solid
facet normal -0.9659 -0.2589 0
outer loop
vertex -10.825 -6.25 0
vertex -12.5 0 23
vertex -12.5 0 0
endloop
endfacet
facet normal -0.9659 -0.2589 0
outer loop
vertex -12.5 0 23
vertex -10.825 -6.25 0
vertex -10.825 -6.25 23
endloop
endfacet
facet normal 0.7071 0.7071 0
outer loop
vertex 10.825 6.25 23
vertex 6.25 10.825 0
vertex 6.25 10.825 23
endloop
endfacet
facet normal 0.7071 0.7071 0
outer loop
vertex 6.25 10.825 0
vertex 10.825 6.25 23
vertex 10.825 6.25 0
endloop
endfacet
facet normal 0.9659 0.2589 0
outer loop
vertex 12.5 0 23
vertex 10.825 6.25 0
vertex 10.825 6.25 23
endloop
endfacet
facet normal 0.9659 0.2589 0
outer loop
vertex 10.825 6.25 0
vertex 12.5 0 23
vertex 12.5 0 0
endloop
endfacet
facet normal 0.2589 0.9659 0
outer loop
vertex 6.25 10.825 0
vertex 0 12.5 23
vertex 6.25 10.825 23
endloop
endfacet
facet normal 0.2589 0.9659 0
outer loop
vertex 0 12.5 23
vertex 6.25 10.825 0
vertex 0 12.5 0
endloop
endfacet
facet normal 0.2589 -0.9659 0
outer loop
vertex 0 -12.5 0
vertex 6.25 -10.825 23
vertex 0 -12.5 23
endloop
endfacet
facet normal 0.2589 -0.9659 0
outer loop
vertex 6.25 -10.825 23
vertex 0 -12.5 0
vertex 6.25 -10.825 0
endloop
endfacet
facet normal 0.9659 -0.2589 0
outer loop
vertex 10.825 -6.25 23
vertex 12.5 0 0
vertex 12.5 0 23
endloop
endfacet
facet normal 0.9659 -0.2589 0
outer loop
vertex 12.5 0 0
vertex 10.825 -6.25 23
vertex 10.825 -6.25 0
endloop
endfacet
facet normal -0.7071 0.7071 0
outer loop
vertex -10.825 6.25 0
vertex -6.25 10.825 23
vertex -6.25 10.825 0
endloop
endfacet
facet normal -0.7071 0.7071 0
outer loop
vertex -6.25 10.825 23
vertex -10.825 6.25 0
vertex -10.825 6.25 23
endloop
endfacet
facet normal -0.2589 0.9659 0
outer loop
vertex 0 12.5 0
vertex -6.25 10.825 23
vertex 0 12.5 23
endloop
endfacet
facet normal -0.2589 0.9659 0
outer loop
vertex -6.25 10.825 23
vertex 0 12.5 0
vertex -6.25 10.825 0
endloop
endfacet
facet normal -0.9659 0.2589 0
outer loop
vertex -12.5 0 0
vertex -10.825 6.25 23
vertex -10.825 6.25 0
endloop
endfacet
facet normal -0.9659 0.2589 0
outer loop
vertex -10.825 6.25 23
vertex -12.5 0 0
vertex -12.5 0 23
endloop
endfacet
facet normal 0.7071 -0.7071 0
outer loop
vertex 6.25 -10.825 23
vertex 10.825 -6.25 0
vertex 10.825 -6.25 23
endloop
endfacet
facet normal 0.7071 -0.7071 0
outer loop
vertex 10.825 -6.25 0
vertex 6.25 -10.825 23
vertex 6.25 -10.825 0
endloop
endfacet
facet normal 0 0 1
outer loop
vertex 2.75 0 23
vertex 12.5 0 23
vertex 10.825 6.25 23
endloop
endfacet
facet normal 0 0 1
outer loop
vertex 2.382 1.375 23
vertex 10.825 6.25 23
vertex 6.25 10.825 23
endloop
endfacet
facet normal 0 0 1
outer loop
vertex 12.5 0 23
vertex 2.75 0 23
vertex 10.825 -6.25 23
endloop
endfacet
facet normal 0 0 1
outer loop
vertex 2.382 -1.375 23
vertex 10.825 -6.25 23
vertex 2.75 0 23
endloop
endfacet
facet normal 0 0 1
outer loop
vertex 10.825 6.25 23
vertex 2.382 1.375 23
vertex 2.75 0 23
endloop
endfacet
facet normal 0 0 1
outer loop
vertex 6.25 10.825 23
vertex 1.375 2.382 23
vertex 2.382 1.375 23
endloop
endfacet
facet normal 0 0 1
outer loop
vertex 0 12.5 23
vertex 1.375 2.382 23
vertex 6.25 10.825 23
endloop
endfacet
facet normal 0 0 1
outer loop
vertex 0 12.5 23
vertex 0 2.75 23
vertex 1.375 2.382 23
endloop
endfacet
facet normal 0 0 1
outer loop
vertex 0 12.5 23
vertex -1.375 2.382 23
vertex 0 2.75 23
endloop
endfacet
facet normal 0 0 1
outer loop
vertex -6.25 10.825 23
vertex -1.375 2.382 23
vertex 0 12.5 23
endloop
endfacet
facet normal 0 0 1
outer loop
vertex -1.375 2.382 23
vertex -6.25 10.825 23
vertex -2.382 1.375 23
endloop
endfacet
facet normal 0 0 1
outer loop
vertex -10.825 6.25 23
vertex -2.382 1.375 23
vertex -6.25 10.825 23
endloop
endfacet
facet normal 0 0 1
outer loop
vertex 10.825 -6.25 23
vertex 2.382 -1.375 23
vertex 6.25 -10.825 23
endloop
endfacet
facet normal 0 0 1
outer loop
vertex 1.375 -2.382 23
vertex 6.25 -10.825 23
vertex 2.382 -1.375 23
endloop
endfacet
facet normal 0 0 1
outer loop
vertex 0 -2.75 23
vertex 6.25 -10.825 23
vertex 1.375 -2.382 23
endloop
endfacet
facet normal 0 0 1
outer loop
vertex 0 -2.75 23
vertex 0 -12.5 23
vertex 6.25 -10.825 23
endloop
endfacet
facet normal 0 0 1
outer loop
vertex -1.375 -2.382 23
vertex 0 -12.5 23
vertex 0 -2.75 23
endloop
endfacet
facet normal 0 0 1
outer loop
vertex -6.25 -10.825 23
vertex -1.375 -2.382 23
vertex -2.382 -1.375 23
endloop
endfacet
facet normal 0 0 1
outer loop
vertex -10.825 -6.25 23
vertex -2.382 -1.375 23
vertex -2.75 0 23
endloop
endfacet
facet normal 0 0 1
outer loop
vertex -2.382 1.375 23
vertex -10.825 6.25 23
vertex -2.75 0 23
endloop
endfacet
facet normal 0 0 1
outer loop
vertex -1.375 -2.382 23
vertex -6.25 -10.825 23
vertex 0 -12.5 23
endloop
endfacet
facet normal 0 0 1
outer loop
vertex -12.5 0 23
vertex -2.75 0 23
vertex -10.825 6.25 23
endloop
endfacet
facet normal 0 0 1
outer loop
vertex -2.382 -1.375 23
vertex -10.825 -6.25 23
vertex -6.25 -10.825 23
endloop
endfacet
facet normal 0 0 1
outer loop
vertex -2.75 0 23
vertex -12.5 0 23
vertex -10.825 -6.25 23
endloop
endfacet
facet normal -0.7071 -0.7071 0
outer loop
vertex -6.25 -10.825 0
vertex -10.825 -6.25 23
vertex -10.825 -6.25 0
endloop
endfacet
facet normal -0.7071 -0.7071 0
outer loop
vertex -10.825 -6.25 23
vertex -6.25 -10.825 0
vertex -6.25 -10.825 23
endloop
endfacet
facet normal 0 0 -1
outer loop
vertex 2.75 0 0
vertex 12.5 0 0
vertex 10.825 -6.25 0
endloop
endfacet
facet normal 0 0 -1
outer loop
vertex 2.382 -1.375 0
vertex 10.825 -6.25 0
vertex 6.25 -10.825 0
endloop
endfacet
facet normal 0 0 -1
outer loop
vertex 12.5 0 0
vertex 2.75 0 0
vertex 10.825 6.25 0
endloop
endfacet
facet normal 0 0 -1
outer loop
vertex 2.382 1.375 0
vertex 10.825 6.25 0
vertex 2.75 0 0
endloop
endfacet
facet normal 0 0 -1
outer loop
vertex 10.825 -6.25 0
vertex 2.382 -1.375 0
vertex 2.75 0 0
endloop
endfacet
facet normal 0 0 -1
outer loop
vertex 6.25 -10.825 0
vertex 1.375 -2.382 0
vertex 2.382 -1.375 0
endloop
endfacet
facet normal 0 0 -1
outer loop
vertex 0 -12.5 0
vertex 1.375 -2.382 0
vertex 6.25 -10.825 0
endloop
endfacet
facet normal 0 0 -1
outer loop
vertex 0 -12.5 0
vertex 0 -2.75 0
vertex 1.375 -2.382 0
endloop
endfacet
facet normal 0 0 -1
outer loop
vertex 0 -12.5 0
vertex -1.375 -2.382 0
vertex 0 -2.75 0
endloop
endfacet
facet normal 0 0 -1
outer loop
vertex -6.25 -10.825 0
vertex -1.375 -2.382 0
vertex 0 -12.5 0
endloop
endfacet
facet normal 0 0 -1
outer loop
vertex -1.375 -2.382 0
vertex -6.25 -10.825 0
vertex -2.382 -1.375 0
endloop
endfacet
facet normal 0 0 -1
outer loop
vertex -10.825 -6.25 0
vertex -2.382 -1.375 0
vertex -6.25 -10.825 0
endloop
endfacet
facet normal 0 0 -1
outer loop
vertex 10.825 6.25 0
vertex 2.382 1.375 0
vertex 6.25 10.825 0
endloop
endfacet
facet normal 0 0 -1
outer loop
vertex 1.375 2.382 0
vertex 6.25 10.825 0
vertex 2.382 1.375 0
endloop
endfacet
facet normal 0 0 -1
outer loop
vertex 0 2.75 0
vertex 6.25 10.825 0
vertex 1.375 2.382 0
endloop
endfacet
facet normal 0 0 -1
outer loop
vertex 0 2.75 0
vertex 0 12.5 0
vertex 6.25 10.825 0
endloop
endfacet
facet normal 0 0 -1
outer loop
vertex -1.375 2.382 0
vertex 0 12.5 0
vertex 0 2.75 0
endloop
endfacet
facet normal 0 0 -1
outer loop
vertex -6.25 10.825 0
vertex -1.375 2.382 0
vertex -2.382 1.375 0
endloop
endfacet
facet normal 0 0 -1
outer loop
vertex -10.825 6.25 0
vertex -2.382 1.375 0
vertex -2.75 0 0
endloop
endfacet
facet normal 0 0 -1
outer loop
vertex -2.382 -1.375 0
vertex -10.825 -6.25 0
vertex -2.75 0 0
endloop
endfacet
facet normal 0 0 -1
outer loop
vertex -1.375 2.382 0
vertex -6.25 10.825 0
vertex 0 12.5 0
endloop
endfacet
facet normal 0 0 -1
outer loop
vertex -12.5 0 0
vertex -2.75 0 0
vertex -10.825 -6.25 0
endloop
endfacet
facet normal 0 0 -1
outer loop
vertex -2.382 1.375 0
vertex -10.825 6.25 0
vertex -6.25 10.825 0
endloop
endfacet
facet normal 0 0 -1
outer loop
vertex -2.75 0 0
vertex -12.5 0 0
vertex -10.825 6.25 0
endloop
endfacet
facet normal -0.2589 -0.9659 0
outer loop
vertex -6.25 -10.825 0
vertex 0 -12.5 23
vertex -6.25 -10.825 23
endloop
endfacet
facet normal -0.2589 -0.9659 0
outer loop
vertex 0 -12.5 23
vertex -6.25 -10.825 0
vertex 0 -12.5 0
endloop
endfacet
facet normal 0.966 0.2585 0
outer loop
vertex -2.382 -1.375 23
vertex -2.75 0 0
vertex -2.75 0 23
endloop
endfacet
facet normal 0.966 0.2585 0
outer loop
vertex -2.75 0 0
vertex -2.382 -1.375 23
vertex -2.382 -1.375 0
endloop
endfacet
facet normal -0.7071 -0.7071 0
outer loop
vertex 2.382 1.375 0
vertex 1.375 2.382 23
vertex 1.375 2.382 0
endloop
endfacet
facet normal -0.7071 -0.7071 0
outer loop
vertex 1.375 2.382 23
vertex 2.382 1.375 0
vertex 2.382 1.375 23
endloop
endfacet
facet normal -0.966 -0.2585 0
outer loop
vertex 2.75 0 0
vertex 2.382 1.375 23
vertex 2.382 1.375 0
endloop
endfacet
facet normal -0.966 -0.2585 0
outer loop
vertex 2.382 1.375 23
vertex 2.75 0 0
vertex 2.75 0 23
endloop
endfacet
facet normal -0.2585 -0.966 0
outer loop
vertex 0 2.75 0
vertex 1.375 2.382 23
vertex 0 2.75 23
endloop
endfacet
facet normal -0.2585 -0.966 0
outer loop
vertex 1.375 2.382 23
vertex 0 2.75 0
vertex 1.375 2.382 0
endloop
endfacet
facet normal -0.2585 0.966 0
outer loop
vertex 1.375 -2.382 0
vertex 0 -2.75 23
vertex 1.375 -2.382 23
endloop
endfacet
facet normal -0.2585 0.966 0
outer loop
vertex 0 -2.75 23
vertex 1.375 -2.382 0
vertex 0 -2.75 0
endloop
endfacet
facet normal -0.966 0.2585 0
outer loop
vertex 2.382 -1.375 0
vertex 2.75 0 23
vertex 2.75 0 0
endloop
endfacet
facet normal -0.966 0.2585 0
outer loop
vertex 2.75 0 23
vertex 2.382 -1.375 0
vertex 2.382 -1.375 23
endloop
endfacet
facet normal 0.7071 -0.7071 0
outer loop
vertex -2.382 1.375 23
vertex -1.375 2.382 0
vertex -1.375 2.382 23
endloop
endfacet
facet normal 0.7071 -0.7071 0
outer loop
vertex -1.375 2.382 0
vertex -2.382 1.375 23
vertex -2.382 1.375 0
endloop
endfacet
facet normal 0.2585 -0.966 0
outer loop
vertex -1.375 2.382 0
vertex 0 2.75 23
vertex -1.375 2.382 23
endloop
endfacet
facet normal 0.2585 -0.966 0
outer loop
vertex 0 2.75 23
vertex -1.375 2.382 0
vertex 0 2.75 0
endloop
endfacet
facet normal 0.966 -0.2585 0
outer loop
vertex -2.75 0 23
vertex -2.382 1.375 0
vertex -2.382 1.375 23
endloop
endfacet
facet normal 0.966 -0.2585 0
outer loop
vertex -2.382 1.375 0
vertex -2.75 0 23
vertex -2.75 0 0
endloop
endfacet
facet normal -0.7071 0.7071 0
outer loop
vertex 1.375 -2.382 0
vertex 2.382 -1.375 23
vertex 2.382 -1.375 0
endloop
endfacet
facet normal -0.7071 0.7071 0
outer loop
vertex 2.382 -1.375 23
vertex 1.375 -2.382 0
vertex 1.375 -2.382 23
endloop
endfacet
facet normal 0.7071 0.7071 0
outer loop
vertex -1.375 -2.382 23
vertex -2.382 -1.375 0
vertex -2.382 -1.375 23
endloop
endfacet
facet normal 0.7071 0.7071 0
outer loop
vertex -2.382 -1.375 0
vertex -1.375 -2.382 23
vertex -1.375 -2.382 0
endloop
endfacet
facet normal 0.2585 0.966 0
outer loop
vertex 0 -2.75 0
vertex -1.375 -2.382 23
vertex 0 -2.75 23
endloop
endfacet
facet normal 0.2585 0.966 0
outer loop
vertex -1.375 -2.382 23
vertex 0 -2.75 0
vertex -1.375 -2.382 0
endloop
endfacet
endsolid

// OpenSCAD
/* 
 * Spacer for wall mount of shed
 */
$fn=12;

spacer_dia=25;
spacer_len=23;
screw_dia=5.5;

module spacer() {
    difference() {
        cylinder(h=spacer_len, d=spacer_dia);
        translate([0,0,-1]) {
            cylinder(h=spacer_len+2, d=screw_dia);
        }
    }
}

/* Render the spacer */
spacer();
